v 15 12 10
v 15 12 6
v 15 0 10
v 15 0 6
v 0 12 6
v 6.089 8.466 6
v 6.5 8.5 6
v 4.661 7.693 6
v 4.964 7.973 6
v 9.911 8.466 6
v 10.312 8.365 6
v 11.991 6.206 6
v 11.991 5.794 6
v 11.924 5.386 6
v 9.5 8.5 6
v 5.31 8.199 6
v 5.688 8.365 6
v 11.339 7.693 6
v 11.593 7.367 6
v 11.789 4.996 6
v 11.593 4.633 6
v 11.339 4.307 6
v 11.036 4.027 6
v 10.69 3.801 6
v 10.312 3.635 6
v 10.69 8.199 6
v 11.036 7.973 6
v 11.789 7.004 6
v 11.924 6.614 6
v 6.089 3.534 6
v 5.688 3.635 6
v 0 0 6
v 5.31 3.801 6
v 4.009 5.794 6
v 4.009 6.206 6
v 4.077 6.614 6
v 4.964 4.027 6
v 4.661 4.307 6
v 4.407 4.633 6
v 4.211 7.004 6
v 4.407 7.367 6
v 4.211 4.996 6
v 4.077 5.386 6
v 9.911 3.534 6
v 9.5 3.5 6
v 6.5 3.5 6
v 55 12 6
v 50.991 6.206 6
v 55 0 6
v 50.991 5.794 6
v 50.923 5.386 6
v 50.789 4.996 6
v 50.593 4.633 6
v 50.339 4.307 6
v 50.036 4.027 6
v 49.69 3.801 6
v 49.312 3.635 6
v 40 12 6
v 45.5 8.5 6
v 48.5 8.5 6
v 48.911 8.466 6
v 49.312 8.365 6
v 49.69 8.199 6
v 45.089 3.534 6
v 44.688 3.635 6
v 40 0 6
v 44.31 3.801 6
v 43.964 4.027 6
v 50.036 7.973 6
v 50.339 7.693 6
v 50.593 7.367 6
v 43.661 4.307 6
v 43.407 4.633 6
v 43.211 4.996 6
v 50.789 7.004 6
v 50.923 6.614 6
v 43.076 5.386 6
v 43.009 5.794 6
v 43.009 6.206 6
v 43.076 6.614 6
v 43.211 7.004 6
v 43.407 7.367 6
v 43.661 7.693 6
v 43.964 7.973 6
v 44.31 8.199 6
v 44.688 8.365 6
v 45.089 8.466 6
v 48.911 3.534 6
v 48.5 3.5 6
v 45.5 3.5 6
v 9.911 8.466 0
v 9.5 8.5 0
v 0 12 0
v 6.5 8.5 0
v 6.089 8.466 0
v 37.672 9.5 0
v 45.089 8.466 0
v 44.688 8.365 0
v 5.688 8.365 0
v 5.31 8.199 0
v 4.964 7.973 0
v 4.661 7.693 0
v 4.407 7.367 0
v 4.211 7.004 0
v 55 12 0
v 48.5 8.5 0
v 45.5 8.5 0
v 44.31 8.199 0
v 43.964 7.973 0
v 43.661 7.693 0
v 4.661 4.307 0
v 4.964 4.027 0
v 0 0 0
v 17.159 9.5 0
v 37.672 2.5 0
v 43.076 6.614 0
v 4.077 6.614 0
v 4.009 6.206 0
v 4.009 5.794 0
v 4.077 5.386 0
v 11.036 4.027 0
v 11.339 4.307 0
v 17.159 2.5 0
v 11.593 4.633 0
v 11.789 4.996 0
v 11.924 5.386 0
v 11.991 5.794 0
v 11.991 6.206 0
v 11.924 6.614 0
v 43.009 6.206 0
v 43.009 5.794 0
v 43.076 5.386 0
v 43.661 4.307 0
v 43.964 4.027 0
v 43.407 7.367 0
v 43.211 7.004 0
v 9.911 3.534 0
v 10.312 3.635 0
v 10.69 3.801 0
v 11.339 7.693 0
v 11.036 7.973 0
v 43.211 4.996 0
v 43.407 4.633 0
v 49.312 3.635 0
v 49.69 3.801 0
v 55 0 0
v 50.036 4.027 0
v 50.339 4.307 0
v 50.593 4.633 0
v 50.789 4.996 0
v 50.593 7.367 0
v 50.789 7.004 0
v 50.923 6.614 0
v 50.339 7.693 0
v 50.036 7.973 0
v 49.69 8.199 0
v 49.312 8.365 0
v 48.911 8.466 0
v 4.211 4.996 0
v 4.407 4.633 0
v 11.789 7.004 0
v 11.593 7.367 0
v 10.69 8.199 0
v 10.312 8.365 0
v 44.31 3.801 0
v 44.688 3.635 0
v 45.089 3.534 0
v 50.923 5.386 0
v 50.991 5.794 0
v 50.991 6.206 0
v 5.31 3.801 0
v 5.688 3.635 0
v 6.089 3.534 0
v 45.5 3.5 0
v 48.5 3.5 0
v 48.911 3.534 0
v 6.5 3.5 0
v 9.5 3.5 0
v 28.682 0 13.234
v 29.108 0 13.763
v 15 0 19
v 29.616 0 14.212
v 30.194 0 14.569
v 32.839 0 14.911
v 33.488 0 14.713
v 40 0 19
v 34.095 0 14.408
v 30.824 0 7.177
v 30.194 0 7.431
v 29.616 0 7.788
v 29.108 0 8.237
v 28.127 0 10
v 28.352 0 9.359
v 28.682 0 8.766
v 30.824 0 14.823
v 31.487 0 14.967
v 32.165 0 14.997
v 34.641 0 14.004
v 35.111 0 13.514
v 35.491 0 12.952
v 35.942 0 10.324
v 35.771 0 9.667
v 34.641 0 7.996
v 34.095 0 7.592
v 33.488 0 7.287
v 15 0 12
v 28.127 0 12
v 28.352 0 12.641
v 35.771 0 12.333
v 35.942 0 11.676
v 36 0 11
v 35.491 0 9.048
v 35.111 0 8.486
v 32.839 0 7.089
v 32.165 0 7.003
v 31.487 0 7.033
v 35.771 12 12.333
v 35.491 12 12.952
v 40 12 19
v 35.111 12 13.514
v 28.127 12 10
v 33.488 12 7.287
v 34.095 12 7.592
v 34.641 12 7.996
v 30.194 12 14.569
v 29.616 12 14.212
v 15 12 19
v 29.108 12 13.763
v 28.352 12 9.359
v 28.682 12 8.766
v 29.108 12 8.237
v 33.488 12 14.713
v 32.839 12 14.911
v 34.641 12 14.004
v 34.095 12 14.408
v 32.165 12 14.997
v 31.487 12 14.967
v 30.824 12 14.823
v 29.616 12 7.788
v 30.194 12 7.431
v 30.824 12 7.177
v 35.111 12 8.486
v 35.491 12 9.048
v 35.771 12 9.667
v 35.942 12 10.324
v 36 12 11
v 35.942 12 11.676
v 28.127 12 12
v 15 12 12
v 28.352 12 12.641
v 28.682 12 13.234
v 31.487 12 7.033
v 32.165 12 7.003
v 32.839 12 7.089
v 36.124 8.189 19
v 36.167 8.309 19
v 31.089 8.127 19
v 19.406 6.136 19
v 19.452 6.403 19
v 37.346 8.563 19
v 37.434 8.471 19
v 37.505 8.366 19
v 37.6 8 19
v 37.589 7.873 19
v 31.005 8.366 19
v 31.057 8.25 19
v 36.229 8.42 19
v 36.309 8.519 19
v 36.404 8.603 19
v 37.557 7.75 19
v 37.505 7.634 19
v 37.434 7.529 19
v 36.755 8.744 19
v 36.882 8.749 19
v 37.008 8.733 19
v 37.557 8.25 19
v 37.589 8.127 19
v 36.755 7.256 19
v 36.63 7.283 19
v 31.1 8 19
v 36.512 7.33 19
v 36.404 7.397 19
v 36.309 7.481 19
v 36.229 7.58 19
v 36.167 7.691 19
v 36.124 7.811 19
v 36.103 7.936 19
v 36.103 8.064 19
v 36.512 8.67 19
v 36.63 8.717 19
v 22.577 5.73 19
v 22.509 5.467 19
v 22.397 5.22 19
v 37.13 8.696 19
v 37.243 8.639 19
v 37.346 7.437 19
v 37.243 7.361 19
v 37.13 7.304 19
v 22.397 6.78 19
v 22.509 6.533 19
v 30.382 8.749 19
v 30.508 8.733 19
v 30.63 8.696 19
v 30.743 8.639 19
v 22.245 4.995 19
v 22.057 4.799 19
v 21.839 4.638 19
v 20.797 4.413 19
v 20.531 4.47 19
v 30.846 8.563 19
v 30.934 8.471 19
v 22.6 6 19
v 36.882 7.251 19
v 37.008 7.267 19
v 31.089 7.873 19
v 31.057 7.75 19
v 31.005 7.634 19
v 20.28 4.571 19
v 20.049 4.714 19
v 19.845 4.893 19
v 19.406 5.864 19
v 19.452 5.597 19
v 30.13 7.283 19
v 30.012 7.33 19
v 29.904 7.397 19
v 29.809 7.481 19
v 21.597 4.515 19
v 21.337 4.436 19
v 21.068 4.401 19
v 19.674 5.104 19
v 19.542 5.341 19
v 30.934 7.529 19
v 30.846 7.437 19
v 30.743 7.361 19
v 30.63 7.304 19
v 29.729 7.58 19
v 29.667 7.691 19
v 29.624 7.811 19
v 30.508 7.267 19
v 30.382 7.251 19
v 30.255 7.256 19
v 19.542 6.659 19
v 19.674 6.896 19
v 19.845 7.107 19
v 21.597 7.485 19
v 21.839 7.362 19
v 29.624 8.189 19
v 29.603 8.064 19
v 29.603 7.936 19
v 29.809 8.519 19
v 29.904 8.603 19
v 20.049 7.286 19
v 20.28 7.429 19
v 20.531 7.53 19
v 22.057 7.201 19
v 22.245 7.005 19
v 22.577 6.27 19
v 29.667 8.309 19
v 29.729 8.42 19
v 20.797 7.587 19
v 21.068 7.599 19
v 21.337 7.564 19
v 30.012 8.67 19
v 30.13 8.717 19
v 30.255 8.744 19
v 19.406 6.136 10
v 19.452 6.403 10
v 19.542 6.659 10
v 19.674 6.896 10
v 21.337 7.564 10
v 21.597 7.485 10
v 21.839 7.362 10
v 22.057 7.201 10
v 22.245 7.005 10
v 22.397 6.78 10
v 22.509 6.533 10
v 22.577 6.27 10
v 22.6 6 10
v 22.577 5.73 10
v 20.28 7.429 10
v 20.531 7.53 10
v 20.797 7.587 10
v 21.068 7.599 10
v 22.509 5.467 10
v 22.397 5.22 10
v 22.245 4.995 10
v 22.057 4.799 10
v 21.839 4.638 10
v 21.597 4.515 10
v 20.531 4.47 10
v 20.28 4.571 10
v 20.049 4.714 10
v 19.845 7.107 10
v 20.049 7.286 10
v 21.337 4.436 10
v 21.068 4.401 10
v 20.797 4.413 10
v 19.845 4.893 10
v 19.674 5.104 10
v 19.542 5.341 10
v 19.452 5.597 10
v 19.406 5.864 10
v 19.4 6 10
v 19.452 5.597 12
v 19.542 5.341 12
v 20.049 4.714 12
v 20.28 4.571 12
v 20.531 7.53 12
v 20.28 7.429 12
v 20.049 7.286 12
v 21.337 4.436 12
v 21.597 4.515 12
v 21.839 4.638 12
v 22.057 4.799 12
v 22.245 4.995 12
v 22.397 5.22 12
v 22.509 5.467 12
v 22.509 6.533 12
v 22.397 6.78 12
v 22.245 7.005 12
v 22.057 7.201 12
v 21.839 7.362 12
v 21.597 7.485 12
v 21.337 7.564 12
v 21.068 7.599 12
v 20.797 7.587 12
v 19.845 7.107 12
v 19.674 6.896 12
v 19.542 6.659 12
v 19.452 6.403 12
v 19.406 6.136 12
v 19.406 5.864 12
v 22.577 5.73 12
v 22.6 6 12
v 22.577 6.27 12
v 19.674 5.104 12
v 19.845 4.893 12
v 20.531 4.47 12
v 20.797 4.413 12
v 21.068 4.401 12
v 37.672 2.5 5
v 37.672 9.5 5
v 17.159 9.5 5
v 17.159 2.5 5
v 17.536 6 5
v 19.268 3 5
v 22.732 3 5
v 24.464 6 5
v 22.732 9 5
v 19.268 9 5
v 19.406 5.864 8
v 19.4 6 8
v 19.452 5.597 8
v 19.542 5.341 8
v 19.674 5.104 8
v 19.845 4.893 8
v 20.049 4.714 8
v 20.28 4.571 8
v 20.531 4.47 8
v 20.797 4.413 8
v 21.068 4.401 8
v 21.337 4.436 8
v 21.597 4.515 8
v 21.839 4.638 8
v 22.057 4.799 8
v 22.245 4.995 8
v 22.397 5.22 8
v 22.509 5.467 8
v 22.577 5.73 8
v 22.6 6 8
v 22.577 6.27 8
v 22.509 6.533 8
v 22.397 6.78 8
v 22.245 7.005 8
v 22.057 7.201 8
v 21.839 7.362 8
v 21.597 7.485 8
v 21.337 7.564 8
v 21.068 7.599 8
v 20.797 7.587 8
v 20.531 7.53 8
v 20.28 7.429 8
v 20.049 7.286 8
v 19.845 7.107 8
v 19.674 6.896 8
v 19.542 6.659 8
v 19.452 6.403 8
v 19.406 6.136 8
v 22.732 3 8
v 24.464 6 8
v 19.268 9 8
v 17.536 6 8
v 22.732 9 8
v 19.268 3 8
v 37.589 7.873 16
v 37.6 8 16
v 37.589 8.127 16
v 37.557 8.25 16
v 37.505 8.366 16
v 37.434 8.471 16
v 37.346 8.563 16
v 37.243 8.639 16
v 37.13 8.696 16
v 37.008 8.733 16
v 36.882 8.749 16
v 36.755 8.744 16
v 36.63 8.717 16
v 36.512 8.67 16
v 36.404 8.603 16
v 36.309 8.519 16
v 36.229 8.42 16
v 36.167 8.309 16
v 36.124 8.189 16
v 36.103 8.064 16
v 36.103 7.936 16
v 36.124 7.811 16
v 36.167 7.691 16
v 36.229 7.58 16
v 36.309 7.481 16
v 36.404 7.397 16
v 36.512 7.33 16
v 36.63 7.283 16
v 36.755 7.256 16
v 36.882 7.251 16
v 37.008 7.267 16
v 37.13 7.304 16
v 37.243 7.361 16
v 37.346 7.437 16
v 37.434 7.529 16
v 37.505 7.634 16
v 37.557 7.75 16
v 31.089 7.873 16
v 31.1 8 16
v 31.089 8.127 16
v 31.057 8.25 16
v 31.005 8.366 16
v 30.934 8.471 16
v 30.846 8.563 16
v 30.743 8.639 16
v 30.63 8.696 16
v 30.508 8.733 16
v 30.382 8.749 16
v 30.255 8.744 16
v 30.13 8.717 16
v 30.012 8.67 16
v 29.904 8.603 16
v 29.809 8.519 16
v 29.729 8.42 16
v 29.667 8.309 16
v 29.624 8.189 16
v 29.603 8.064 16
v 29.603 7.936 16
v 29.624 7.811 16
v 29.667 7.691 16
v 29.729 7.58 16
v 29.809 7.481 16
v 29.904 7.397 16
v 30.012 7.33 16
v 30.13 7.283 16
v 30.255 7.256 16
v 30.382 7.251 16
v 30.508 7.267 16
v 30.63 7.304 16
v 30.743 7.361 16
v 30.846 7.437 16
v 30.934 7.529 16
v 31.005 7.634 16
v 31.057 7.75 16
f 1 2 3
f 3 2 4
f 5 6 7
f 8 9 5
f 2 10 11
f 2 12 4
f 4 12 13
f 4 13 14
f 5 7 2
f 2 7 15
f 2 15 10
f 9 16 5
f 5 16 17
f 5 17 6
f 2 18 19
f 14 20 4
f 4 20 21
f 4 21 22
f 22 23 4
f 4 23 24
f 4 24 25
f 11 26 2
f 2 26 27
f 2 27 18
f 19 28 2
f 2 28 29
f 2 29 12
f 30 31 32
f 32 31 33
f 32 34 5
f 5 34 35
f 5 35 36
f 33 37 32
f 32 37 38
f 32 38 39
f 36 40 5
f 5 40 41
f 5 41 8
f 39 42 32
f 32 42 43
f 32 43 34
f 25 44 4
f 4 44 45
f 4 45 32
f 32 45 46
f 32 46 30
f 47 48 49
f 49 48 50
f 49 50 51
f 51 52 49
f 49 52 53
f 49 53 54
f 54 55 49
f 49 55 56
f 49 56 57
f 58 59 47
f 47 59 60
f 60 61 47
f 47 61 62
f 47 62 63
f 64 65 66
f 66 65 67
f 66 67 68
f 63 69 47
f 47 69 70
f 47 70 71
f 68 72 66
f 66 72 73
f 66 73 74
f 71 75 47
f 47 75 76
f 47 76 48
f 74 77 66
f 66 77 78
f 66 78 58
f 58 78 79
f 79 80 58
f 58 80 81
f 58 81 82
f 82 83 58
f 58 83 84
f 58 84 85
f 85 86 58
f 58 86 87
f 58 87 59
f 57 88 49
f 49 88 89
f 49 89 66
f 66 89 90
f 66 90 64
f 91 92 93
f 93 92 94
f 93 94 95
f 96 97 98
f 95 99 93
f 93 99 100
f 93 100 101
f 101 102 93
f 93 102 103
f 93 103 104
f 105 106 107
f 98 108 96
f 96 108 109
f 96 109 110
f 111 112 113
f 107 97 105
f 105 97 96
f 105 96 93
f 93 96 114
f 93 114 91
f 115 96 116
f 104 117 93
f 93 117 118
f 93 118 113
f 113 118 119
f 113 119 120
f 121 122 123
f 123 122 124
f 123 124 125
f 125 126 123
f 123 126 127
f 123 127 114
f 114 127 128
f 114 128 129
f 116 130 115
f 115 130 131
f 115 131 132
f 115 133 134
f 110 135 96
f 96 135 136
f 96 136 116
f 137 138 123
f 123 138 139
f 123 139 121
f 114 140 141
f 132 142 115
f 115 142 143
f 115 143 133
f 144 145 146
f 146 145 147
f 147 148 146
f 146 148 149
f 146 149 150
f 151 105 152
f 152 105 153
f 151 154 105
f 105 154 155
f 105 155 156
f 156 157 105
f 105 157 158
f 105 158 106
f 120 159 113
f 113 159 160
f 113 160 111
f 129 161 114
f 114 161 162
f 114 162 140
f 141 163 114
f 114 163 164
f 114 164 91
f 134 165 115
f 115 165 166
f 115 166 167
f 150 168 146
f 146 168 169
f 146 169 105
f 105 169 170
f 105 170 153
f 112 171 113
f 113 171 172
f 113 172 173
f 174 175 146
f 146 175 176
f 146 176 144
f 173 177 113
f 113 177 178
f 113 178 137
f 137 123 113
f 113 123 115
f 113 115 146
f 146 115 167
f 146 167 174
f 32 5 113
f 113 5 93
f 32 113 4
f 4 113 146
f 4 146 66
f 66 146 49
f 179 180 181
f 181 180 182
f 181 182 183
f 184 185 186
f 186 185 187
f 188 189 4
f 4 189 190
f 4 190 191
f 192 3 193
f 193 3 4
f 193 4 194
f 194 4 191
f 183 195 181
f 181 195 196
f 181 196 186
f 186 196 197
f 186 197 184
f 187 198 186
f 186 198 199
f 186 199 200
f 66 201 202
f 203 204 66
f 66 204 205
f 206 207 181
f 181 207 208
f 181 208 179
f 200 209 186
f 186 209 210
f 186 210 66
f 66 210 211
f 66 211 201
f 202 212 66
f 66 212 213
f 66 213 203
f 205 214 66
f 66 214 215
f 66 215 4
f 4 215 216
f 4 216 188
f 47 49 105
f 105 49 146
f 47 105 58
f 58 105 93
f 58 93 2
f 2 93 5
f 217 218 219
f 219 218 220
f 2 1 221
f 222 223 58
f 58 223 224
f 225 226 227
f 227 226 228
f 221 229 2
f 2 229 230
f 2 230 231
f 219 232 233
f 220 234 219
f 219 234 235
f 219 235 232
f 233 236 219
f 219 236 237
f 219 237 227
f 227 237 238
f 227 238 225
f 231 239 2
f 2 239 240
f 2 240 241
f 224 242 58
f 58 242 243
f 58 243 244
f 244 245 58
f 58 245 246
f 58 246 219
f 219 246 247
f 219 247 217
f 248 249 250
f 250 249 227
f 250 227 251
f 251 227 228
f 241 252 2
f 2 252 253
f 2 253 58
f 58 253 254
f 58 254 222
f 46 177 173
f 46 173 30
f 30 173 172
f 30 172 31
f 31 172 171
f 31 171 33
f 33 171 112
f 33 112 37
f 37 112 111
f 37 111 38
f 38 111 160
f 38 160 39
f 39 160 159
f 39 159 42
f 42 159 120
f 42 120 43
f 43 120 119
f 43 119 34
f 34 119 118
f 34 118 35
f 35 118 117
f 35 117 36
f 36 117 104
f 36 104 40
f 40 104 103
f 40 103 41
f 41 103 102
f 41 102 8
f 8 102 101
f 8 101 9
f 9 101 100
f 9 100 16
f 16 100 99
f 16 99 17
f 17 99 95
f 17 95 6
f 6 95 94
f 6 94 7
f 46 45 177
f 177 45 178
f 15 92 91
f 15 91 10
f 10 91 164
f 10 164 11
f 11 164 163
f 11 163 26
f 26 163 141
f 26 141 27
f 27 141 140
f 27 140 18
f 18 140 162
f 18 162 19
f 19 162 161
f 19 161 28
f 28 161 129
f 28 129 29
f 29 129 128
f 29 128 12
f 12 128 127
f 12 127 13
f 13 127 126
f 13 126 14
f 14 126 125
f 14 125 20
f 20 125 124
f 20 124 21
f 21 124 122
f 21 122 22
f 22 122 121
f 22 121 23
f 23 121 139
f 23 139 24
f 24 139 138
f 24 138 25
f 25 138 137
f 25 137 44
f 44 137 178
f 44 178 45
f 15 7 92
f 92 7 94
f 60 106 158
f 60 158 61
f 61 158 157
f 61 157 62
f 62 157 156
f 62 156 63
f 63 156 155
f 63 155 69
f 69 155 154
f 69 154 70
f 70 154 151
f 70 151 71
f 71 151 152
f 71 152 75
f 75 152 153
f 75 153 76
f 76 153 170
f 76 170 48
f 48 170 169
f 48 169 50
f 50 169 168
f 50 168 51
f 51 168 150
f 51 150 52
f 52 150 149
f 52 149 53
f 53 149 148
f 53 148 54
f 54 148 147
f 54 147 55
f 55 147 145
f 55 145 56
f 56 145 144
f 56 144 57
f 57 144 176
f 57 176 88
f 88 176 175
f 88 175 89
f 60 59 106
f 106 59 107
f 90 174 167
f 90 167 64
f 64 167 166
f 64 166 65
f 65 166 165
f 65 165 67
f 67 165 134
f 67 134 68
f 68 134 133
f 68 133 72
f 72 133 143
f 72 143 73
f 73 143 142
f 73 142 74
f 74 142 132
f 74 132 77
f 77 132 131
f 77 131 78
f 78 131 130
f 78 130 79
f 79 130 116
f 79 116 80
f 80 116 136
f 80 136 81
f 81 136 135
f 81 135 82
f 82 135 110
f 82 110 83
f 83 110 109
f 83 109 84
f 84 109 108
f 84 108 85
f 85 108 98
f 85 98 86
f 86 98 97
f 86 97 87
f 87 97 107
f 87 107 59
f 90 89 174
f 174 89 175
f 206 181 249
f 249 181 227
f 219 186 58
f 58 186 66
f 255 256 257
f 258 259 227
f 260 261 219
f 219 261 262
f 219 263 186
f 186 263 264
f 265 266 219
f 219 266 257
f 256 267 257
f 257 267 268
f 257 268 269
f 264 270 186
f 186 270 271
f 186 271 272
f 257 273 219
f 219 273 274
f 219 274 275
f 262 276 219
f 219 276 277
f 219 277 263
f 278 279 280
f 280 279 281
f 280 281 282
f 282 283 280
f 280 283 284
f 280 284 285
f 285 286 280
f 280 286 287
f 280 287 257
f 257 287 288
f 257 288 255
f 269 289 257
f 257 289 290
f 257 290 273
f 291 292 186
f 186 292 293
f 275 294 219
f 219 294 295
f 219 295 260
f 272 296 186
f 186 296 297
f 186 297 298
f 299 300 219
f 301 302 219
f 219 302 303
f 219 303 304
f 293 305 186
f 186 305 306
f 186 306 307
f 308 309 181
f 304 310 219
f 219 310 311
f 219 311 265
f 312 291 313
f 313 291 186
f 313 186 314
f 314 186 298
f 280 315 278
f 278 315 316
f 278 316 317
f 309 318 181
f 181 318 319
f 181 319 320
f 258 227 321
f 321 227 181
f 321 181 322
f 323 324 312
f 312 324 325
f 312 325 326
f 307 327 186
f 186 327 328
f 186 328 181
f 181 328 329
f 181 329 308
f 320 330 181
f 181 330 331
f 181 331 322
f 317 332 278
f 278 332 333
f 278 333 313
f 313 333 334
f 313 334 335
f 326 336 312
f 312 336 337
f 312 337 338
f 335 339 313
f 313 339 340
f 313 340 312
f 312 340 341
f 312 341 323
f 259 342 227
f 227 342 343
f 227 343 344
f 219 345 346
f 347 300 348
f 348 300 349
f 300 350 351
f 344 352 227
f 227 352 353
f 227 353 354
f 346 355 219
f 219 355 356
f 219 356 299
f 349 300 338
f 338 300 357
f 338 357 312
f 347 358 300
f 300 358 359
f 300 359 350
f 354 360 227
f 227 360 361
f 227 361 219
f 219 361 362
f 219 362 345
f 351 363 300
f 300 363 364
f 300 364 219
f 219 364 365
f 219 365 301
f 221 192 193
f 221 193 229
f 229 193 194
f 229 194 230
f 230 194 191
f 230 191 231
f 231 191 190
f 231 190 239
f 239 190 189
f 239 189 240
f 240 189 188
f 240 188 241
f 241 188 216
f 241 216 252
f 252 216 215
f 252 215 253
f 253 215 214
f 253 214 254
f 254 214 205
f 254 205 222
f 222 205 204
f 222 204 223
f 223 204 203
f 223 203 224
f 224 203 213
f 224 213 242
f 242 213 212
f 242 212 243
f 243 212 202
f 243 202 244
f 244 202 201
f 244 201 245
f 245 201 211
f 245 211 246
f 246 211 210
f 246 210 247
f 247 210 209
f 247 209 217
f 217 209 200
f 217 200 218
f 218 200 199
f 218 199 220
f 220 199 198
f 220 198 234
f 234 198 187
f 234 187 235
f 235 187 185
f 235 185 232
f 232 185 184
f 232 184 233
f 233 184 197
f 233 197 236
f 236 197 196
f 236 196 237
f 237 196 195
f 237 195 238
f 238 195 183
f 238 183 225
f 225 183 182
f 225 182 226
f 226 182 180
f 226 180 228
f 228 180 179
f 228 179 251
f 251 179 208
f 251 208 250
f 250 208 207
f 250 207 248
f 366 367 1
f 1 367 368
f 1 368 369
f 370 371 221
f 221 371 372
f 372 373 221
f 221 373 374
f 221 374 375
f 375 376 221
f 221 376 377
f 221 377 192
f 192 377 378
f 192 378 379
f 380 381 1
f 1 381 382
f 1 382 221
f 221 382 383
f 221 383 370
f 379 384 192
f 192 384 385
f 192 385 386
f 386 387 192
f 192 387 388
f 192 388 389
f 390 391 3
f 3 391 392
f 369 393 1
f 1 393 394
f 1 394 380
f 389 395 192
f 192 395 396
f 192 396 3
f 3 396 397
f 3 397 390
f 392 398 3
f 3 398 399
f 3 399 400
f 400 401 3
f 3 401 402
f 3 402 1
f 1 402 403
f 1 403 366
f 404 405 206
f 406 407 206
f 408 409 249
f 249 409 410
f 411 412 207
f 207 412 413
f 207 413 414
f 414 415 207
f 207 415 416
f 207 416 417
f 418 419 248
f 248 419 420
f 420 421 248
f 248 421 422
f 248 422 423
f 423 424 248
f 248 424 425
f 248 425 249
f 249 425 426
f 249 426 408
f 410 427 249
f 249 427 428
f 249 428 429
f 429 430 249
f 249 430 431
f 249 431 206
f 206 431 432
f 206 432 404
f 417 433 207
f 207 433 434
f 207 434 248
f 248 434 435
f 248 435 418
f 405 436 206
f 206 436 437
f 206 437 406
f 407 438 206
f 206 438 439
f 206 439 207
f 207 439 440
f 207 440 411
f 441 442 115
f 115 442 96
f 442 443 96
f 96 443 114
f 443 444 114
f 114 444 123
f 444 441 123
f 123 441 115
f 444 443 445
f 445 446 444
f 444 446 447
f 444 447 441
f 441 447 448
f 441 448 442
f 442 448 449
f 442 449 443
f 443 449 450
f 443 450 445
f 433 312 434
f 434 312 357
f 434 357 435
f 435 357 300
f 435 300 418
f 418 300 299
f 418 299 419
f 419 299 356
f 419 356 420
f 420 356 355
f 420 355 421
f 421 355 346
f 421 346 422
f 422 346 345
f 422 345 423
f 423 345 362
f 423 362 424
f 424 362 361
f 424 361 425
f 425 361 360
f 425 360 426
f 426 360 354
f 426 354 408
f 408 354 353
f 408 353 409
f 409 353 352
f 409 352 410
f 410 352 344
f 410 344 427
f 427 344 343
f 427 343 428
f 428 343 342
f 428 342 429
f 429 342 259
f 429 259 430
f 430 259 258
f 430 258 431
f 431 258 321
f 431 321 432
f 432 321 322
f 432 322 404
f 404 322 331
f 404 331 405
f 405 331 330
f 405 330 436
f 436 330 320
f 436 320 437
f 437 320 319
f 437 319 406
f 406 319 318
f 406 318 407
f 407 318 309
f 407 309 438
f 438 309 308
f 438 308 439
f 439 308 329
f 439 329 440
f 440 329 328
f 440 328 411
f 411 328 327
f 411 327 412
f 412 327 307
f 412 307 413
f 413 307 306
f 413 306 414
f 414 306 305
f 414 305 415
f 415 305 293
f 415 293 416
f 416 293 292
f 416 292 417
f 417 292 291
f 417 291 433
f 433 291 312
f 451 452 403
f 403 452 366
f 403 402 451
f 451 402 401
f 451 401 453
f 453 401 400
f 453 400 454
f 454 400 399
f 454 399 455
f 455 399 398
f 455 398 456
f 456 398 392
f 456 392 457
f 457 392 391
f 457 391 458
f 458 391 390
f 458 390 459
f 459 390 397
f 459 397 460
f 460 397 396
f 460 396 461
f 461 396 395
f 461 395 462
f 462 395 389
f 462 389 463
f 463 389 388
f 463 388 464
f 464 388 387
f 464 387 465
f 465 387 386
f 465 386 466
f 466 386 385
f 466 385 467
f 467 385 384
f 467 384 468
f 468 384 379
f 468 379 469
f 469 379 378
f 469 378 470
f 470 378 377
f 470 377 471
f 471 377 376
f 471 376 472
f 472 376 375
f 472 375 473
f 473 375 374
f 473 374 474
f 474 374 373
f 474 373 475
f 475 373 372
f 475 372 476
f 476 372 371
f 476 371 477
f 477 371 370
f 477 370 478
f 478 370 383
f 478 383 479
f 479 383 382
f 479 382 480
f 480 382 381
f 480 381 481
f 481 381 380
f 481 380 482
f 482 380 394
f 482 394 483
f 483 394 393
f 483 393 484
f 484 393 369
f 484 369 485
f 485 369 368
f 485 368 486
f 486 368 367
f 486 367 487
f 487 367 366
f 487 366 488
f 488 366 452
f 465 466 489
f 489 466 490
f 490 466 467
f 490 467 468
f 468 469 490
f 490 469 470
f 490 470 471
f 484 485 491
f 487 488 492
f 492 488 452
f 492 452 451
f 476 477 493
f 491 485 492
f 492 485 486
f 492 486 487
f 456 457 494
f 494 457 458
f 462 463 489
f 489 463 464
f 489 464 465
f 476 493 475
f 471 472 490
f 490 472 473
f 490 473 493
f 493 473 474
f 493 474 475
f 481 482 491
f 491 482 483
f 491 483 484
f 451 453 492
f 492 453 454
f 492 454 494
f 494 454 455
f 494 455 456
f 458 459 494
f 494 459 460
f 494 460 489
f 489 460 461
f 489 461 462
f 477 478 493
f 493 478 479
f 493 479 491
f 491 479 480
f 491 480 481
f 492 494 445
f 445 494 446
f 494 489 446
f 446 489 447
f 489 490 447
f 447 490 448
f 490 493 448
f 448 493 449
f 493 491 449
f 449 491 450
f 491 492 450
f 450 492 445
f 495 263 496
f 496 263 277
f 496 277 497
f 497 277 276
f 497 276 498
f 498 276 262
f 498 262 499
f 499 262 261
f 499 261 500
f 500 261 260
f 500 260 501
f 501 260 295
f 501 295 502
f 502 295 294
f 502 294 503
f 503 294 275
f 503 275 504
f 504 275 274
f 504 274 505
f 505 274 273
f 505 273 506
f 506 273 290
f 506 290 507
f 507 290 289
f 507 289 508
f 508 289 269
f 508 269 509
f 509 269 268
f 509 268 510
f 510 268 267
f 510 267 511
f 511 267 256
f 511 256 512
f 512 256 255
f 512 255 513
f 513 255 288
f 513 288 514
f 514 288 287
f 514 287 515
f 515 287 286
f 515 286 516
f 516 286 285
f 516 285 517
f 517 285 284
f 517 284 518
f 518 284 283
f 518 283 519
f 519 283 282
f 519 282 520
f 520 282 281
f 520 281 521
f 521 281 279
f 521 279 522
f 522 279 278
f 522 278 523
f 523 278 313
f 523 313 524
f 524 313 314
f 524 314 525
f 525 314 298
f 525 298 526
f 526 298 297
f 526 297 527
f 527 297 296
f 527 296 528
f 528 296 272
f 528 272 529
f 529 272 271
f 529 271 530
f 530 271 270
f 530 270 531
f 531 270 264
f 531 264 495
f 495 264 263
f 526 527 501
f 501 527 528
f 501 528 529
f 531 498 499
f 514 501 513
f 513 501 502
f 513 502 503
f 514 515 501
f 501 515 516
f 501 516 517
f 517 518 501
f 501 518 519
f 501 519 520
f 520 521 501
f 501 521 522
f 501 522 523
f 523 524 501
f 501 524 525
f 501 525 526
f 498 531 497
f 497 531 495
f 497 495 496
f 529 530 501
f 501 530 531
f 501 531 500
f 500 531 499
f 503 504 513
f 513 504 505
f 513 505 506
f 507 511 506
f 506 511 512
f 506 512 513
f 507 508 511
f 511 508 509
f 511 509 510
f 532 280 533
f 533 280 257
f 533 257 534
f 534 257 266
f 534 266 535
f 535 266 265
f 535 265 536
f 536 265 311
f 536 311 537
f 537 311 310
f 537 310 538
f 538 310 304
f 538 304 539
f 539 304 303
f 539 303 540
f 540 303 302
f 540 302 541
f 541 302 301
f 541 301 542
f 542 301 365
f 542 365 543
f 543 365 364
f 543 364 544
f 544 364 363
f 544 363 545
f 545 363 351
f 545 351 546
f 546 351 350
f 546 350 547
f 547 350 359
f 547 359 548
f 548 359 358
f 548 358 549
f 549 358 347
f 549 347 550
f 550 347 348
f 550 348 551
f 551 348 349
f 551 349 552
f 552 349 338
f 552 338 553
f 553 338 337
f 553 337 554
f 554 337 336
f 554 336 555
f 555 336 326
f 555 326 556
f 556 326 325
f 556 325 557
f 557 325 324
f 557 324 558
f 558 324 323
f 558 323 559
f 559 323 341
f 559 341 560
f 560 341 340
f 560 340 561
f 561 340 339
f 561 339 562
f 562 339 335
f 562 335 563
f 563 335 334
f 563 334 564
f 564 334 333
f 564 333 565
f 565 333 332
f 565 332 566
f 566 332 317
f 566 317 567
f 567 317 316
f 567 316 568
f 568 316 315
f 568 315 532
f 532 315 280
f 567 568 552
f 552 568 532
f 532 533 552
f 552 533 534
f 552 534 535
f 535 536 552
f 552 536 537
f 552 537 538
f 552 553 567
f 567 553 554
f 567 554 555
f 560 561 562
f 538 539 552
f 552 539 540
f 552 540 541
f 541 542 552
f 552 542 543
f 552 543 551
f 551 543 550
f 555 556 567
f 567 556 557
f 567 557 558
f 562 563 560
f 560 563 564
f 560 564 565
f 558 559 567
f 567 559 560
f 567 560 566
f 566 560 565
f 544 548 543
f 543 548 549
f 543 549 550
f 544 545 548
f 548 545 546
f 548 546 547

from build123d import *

# Parameters (mm, degrees)
SKETCH2_W           = 55
SKETCH2_H           = 12
BOSS_EXTRUDE1_DEPTH = 6
SKETCH3_W           = 25
SKETCH3_H           = 12
BOSS_EXTRUDE2_DEPTH = 13
SKETCH4_R           = 4
CUT_EXTRUDE2_DEPTH  = 30
SKETCH5_W           = 20.513890507
SKETCH5_H           = 7
CUT_EXTRUDE3_DEPTH  = 5
SKETCH6_R           = 1.6
CUT_EXTRUDE4_DEPTH  = 11
CUT_EXTRUDE5_DEPTH  = 3
SKETCH8_R           = 0.75
CUT_EXTRUDE6_DEPTH  = 3


with BuildPart() as part:
    # Sketch2 → Boss-Extrude1 (new body)
    with BuildSketch(Plane.XY):
        with Locations((27.5, 6)):
            Rectangle(SKETCH2_W, SKETCH2_H)
        with BuildLine():
            Line((6.5, 8.5), (9.5, 8.5))
            ThreePointArc((9.5, 8.5), (12, 6), (9.5, 3.5))
            Line((9.5, 3.5), (6.5, 3.5))
            ThreePointArc((6.5, 3.5), (4, 6), (6.5, 8.5))
        make_face(mode=Mode.SUBTRACT)
        with BuildLine():
            Line((48.5, 8.5), (45.5, 8.5))
            ThreePointArc((45.5, 8.5), (43, 6), (45.5, 3.5))
            Line((45.5, 3.5), (48.5, 3.5))
            ThreePointArc((48.5, 3.5), (51, 6), (48.5, 8.5))
        make_face(mode=Mode.SUBTRACT)
    extrude(amount=BOSS_EXTRUDE1_DEPTH)

    # Sketch3 → Boss-Extrude2 (add)
    with BuildSketch(Plane.XY.offset(6)):
        with Locations((27.5, 6)):
            Rectangle(SKETCH3_W, SKETCH3_H)
    extrude(amount=BOSS_EXTRUDE2_DEPTH)

    # Sketch4 → Cut-Extrude2 (cut)
    with BuildSketch(Plane.XZ):
        with BuildLine():
            ThreePointArc((28.127016654, 10), (28, 11), (28.127016654, 12))
            Line((28.127016654, 12), (15, 12))
            Line((15, 12), (15, 10))
            Line((15, 10), (28.127016654, 10))
        make_face()
        with Locations((32, 11)):
            Circle(SKETCH4_R)
    extrude(amount=-CUT_EXTRUDE2_DEPTH, mode=Mode.SUBTRACT)

    # Sketch5 → Cut-Extrude3 (cut)
    with BuildSketch(Plane(origin=(0, 0, 0), x_dir=(-1, 0, 0), z_dir=(0, 0, -1))):
        with Locations((-27.415473723, 6)):
            Rectangle(SKETCH5_W, SKETCH5_H)
    extrude(amount=-CUT_EXTRUDE3_DEPTH, mode=Mode.SUBTRACT)

    # Sketch6 → Cut-Extrude4 (cut)
    with BuildSketch(Plane.XY.offset(19)):
        with Locations((21, 6)):
            Circle(SKETCH6_R)
    extrude(amount=-CUT_EXTRUDE4_DEPTH, mode=Mode.SUBTRACT)

    # Sketch7 → Cut-Extrude5 (cut)
    with BuildSketch(Plane(origin=(0, 0, 5), x_dir=(-1, 0, 0), z_dir=(0, 0, -1))):
        Polygon((-17.535898385, 6), (-19.267949192, 9), (-22.732050808, 9), (-24.464101615, 6), (-22.732050808, 3), (-19.267949192, 3), align=None)
    extrude(amount=-CUT_EXTRUDE5_DEPTH, mode=Mode.SUBTRACT)

    # Sketch8 → Cut-Extrude6 (cut)
    with BuildSketch(Plane.XY.offset(19)):
        with Locations((36.85, 8)):
            Circle(SKETCH8_R)
        with Locations((30.35, 8)):
            Circle(SKETCH8_R)
    extrude(amount=-CUT_EXTRUDE6_DEPTH, mode=Mode.SUBTRACT)


solid = part.part
